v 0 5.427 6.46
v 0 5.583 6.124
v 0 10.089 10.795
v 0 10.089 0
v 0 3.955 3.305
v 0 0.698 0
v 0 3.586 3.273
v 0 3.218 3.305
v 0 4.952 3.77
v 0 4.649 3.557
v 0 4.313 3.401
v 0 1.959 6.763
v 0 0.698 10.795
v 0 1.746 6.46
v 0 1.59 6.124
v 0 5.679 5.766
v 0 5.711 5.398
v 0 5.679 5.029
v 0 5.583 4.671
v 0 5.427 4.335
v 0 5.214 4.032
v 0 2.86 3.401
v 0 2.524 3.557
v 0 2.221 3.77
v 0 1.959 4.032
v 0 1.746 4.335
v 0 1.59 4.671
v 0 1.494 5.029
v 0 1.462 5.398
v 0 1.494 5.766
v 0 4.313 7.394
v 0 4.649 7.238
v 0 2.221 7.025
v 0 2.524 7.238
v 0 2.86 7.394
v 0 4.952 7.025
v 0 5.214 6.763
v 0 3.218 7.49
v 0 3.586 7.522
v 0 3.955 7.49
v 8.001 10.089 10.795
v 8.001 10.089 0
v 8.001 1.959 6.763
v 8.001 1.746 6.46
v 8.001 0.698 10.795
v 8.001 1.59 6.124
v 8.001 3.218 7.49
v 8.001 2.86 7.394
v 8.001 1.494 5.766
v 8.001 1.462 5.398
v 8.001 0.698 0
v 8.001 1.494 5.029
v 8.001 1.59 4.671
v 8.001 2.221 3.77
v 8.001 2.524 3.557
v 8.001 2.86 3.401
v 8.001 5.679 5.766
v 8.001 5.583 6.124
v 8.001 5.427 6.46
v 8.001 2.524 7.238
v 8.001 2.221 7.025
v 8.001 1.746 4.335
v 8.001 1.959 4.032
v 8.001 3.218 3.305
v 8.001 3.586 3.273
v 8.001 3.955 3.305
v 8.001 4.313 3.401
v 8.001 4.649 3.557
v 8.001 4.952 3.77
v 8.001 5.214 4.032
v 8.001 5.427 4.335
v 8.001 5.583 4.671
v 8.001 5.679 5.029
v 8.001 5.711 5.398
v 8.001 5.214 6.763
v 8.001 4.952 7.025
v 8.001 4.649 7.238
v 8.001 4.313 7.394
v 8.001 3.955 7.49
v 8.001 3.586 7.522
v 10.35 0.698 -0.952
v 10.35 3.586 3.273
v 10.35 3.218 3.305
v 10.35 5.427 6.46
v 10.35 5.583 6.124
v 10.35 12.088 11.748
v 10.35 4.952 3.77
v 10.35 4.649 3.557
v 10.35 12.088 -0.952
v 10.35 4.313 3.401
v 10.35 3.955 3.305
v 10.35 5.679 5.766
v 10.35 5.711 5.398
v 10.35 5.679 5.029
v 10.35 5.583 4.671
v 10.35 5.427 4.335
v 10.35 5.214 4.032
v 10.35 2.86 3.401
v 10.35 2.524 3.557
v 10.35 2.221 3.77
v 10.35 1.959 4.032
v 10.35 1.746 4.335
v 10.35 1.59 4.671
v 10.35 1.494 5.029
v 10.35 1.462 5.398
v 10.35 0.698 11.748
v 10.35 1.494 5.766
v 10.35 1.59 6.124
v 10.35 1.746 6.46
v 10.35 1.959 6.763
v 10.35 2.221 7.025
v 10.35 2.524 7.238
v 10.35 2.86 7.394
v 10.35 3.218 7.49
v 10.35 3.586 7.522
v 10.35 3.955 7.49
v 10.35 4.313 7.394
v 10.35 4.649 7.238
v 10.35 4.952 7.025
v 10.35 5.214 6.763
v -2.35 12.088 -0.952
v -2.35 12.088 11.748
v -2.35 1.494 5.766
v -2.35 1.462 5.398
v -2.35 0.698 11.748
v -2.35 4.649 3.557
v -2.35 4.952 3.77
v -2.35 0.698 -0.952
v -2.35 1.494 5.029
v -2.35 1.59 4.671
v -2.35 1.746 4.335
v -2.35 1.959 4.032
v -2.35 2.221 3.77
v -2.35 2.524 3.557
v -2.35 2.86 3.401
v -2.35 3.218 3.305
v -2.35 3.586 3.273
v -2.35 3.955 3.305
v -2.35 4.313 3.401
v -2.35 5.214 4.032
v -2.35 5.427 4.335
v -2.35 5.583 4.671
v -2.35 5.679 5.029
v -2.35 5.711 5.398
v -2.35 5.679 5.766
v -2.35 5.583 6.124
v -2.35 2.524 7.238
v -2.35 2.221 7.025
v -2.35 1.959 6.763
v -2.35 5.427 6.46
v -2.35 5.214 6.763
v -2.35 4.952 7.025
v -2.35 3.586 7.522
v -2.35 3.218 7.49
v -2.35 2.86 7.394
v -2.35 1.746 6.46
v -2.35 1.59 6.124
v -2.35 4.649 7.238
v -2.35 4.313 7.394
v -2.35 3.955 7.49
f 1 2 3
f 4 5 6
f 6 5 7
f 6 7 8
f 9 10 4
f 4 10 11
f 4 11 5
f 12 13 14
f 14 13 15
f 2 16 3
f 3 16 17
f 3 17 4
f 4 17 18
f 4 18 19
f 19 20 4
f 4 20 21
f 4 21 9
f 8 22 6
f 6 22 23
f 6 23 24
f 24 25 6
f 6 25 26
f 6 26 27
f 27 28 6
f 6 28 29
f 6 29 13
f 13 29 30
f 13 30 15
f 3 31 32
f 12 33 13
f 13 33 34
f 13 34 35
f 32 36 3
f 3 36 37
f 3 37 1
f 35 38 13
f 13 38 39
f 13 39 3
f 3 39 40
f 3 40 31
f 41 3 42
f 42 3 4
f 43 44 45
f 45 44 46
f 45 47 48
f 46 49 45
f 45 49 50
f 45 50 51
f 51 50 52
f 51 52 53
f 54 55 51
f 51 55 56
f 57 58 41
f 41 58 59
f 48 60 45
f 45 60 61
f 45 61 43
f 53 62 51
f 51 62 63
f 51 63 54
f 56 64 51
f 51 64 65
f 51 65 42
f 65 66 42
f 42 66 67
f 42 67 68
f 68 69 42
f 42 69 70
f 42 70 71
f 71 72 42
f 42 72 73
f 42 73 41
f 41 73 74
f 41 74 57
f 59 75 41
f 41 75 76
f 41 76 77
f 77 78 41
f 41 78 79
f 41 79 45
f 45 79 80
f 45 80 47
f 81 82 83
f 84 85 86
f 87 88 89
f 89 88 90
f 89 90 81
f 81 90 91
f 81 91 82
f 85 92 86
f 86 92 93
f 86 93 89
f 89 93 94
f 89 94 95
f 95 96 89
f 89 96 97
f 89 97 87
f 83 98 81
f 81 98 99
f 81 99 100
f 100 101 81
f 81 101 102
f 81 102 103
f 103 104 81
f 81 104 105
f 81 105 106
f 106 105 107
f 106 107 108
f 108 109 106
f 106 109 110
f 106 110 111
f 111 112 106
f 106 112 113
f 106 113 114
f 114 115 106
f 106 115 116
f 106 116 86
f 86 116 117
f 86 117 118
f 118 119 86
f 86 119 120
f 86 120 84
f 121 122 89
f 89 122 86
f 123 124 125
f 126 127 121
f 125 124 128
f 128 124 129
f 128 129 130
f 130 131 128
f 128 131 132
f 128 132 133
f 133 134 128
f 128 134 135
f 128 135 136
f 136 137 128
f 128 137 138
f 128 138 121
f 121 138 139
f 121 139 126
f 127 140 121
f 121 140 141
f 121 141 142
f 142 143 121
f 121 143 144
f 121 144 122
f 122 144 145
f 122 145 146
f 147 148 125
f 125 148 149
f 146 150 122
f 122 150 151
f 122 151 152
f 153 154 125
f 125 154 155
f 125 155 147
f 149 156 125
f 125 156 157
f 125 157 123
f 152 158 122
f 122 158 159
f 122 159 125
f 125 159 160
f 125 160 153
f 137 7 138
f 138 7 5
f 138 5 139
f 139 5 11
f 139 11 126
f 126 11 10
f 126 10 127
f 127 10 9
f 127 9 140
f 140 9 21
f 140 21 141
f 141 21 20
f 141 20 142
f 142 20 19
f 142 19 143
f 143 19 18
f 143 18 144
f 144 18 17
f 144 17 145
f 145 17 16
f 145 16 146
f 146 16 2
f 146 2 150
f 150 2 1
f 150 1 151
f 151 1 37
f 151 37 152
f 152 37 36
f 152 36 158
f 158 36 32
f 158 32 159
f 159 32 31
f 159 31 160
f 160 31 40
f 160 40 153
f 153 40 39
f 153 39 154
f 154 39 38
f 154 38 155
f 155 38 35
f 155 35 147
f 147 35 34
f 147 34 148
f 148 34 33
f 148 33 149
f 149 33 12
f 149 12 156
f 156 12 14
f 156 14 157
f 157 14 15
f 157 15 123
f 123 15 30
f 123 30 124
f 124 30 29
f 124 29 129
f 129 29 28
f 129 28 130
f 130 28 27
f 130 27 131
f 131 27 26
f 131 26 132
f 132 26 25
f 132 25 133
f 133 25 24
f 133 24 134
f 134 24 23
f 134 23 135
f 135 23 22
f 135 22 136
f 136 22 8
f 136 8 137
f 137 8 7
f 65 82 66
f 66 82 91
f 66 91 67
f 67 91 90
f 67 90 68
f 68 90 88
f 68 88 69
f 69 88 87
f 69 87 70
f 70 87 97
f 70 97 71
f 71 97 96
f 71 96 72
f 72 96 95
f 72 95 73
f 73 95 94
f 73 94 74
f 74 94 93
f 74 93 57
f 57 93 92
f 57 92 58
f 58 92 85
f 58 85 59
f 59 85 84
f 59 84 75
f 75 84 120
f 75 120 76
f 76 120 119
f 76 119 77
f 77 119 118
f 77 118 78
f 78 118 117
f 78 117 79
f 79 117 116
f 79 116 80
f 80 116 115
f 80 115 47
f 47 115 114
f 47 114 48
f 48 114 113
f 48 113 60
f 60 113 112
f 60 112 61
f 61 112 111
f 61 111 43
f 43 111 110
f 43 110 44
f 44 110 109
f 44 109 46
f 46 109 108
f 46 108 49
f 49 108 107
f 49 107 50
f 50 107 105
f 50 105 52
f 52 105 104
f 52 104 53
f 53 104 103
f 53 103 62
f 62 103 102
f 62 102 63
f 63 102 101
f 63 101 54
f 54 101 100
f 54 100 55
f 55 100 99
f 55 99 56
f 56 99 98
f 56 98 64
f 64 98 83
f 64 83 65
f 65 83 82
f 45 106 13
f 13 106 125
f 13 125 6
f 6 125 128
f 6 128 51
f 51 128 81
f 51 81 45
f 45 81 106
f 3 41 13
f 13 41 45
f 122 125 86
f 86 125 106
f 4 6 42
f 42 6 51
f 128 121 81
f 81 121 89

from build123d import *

# Parameters (mm, degrees)
BOSS_EXTRUDE1_DEPTH = 10.795
SKETCH2_R           = 2.12471
CUT_EXTRUDE1_DEPTH  = 13.7
SKETCH3_W           = 10.795
SKETCH3_H           = 0.6985
CUT_EXTRUDE2_DEPTH  = 13.7
SKETCH4_W           = 0.9525
SKETCH4_H           = 11.38936
BOSS_EXTRUDE2_DEPTH = 12.7


with BuildPart() as part:
    # Sketch1 → Boss-Extrude1 (new body)
    with BuildSketch(Plane.XY):
        Polygon((0, 0), (0, 10.08888), (8.001, 10.08888), (8.001, 0), (10.3505, 0), (10.3505, 12.08786), (-2.3495, 12.08786), (-2.3495, 0), align=None)
    extrude(amount=BOSS_EXTRUDE1_DEPTH)

    # Sketch2 → Cut-Extrude1 (cut, through all)
    with BuildSketch(Plane(origin=(10.3505, 0, 0), x_dir=(0, 0, -1), z_dir=(1, 0, 0))):
        with Locations((-5.3975, 3.58648)):
            Circle(SKETCH2_R)
    extrude(amount=-CUT_EXTRUDE1_DEPTH, mode=Mode.SUBTRACT)

    # Sketch3 → Cut-Extrude2 (cut, through all)
    with BuildSketch(Plane(origin=(10.3505, 0, 0), x_dir=(0, 0, -1), z_dir=(1, 0, 0))):
        with Locations((-5.3975, 0.34925)):
            Rectangle(SKETCH3_W, SKETCH3_H)
    extrude(amount=-CUT_EXTRUDE2_DEPTH, mode=Mode.SUBTRACT)

    # Sketch4 → Boss-Extrude2 (add)
    with BuildSketch(Plane(origin=(10.3505, 0, 0), x_dir=(0, 0, -1), z_dir=(1, 0, 0))):
        with Locations((-11.27125, 6.39318)):
            Rectangle(SKETCH4_W, SKETCH4_H)
        with Locations((0.47625, 6.39318)):
            Rectangle(SKETCH4_W, SKETCH4_H)
    extrude(amount=-BOSS_EXTRUDE2_DEPTH)


solid = part.part
